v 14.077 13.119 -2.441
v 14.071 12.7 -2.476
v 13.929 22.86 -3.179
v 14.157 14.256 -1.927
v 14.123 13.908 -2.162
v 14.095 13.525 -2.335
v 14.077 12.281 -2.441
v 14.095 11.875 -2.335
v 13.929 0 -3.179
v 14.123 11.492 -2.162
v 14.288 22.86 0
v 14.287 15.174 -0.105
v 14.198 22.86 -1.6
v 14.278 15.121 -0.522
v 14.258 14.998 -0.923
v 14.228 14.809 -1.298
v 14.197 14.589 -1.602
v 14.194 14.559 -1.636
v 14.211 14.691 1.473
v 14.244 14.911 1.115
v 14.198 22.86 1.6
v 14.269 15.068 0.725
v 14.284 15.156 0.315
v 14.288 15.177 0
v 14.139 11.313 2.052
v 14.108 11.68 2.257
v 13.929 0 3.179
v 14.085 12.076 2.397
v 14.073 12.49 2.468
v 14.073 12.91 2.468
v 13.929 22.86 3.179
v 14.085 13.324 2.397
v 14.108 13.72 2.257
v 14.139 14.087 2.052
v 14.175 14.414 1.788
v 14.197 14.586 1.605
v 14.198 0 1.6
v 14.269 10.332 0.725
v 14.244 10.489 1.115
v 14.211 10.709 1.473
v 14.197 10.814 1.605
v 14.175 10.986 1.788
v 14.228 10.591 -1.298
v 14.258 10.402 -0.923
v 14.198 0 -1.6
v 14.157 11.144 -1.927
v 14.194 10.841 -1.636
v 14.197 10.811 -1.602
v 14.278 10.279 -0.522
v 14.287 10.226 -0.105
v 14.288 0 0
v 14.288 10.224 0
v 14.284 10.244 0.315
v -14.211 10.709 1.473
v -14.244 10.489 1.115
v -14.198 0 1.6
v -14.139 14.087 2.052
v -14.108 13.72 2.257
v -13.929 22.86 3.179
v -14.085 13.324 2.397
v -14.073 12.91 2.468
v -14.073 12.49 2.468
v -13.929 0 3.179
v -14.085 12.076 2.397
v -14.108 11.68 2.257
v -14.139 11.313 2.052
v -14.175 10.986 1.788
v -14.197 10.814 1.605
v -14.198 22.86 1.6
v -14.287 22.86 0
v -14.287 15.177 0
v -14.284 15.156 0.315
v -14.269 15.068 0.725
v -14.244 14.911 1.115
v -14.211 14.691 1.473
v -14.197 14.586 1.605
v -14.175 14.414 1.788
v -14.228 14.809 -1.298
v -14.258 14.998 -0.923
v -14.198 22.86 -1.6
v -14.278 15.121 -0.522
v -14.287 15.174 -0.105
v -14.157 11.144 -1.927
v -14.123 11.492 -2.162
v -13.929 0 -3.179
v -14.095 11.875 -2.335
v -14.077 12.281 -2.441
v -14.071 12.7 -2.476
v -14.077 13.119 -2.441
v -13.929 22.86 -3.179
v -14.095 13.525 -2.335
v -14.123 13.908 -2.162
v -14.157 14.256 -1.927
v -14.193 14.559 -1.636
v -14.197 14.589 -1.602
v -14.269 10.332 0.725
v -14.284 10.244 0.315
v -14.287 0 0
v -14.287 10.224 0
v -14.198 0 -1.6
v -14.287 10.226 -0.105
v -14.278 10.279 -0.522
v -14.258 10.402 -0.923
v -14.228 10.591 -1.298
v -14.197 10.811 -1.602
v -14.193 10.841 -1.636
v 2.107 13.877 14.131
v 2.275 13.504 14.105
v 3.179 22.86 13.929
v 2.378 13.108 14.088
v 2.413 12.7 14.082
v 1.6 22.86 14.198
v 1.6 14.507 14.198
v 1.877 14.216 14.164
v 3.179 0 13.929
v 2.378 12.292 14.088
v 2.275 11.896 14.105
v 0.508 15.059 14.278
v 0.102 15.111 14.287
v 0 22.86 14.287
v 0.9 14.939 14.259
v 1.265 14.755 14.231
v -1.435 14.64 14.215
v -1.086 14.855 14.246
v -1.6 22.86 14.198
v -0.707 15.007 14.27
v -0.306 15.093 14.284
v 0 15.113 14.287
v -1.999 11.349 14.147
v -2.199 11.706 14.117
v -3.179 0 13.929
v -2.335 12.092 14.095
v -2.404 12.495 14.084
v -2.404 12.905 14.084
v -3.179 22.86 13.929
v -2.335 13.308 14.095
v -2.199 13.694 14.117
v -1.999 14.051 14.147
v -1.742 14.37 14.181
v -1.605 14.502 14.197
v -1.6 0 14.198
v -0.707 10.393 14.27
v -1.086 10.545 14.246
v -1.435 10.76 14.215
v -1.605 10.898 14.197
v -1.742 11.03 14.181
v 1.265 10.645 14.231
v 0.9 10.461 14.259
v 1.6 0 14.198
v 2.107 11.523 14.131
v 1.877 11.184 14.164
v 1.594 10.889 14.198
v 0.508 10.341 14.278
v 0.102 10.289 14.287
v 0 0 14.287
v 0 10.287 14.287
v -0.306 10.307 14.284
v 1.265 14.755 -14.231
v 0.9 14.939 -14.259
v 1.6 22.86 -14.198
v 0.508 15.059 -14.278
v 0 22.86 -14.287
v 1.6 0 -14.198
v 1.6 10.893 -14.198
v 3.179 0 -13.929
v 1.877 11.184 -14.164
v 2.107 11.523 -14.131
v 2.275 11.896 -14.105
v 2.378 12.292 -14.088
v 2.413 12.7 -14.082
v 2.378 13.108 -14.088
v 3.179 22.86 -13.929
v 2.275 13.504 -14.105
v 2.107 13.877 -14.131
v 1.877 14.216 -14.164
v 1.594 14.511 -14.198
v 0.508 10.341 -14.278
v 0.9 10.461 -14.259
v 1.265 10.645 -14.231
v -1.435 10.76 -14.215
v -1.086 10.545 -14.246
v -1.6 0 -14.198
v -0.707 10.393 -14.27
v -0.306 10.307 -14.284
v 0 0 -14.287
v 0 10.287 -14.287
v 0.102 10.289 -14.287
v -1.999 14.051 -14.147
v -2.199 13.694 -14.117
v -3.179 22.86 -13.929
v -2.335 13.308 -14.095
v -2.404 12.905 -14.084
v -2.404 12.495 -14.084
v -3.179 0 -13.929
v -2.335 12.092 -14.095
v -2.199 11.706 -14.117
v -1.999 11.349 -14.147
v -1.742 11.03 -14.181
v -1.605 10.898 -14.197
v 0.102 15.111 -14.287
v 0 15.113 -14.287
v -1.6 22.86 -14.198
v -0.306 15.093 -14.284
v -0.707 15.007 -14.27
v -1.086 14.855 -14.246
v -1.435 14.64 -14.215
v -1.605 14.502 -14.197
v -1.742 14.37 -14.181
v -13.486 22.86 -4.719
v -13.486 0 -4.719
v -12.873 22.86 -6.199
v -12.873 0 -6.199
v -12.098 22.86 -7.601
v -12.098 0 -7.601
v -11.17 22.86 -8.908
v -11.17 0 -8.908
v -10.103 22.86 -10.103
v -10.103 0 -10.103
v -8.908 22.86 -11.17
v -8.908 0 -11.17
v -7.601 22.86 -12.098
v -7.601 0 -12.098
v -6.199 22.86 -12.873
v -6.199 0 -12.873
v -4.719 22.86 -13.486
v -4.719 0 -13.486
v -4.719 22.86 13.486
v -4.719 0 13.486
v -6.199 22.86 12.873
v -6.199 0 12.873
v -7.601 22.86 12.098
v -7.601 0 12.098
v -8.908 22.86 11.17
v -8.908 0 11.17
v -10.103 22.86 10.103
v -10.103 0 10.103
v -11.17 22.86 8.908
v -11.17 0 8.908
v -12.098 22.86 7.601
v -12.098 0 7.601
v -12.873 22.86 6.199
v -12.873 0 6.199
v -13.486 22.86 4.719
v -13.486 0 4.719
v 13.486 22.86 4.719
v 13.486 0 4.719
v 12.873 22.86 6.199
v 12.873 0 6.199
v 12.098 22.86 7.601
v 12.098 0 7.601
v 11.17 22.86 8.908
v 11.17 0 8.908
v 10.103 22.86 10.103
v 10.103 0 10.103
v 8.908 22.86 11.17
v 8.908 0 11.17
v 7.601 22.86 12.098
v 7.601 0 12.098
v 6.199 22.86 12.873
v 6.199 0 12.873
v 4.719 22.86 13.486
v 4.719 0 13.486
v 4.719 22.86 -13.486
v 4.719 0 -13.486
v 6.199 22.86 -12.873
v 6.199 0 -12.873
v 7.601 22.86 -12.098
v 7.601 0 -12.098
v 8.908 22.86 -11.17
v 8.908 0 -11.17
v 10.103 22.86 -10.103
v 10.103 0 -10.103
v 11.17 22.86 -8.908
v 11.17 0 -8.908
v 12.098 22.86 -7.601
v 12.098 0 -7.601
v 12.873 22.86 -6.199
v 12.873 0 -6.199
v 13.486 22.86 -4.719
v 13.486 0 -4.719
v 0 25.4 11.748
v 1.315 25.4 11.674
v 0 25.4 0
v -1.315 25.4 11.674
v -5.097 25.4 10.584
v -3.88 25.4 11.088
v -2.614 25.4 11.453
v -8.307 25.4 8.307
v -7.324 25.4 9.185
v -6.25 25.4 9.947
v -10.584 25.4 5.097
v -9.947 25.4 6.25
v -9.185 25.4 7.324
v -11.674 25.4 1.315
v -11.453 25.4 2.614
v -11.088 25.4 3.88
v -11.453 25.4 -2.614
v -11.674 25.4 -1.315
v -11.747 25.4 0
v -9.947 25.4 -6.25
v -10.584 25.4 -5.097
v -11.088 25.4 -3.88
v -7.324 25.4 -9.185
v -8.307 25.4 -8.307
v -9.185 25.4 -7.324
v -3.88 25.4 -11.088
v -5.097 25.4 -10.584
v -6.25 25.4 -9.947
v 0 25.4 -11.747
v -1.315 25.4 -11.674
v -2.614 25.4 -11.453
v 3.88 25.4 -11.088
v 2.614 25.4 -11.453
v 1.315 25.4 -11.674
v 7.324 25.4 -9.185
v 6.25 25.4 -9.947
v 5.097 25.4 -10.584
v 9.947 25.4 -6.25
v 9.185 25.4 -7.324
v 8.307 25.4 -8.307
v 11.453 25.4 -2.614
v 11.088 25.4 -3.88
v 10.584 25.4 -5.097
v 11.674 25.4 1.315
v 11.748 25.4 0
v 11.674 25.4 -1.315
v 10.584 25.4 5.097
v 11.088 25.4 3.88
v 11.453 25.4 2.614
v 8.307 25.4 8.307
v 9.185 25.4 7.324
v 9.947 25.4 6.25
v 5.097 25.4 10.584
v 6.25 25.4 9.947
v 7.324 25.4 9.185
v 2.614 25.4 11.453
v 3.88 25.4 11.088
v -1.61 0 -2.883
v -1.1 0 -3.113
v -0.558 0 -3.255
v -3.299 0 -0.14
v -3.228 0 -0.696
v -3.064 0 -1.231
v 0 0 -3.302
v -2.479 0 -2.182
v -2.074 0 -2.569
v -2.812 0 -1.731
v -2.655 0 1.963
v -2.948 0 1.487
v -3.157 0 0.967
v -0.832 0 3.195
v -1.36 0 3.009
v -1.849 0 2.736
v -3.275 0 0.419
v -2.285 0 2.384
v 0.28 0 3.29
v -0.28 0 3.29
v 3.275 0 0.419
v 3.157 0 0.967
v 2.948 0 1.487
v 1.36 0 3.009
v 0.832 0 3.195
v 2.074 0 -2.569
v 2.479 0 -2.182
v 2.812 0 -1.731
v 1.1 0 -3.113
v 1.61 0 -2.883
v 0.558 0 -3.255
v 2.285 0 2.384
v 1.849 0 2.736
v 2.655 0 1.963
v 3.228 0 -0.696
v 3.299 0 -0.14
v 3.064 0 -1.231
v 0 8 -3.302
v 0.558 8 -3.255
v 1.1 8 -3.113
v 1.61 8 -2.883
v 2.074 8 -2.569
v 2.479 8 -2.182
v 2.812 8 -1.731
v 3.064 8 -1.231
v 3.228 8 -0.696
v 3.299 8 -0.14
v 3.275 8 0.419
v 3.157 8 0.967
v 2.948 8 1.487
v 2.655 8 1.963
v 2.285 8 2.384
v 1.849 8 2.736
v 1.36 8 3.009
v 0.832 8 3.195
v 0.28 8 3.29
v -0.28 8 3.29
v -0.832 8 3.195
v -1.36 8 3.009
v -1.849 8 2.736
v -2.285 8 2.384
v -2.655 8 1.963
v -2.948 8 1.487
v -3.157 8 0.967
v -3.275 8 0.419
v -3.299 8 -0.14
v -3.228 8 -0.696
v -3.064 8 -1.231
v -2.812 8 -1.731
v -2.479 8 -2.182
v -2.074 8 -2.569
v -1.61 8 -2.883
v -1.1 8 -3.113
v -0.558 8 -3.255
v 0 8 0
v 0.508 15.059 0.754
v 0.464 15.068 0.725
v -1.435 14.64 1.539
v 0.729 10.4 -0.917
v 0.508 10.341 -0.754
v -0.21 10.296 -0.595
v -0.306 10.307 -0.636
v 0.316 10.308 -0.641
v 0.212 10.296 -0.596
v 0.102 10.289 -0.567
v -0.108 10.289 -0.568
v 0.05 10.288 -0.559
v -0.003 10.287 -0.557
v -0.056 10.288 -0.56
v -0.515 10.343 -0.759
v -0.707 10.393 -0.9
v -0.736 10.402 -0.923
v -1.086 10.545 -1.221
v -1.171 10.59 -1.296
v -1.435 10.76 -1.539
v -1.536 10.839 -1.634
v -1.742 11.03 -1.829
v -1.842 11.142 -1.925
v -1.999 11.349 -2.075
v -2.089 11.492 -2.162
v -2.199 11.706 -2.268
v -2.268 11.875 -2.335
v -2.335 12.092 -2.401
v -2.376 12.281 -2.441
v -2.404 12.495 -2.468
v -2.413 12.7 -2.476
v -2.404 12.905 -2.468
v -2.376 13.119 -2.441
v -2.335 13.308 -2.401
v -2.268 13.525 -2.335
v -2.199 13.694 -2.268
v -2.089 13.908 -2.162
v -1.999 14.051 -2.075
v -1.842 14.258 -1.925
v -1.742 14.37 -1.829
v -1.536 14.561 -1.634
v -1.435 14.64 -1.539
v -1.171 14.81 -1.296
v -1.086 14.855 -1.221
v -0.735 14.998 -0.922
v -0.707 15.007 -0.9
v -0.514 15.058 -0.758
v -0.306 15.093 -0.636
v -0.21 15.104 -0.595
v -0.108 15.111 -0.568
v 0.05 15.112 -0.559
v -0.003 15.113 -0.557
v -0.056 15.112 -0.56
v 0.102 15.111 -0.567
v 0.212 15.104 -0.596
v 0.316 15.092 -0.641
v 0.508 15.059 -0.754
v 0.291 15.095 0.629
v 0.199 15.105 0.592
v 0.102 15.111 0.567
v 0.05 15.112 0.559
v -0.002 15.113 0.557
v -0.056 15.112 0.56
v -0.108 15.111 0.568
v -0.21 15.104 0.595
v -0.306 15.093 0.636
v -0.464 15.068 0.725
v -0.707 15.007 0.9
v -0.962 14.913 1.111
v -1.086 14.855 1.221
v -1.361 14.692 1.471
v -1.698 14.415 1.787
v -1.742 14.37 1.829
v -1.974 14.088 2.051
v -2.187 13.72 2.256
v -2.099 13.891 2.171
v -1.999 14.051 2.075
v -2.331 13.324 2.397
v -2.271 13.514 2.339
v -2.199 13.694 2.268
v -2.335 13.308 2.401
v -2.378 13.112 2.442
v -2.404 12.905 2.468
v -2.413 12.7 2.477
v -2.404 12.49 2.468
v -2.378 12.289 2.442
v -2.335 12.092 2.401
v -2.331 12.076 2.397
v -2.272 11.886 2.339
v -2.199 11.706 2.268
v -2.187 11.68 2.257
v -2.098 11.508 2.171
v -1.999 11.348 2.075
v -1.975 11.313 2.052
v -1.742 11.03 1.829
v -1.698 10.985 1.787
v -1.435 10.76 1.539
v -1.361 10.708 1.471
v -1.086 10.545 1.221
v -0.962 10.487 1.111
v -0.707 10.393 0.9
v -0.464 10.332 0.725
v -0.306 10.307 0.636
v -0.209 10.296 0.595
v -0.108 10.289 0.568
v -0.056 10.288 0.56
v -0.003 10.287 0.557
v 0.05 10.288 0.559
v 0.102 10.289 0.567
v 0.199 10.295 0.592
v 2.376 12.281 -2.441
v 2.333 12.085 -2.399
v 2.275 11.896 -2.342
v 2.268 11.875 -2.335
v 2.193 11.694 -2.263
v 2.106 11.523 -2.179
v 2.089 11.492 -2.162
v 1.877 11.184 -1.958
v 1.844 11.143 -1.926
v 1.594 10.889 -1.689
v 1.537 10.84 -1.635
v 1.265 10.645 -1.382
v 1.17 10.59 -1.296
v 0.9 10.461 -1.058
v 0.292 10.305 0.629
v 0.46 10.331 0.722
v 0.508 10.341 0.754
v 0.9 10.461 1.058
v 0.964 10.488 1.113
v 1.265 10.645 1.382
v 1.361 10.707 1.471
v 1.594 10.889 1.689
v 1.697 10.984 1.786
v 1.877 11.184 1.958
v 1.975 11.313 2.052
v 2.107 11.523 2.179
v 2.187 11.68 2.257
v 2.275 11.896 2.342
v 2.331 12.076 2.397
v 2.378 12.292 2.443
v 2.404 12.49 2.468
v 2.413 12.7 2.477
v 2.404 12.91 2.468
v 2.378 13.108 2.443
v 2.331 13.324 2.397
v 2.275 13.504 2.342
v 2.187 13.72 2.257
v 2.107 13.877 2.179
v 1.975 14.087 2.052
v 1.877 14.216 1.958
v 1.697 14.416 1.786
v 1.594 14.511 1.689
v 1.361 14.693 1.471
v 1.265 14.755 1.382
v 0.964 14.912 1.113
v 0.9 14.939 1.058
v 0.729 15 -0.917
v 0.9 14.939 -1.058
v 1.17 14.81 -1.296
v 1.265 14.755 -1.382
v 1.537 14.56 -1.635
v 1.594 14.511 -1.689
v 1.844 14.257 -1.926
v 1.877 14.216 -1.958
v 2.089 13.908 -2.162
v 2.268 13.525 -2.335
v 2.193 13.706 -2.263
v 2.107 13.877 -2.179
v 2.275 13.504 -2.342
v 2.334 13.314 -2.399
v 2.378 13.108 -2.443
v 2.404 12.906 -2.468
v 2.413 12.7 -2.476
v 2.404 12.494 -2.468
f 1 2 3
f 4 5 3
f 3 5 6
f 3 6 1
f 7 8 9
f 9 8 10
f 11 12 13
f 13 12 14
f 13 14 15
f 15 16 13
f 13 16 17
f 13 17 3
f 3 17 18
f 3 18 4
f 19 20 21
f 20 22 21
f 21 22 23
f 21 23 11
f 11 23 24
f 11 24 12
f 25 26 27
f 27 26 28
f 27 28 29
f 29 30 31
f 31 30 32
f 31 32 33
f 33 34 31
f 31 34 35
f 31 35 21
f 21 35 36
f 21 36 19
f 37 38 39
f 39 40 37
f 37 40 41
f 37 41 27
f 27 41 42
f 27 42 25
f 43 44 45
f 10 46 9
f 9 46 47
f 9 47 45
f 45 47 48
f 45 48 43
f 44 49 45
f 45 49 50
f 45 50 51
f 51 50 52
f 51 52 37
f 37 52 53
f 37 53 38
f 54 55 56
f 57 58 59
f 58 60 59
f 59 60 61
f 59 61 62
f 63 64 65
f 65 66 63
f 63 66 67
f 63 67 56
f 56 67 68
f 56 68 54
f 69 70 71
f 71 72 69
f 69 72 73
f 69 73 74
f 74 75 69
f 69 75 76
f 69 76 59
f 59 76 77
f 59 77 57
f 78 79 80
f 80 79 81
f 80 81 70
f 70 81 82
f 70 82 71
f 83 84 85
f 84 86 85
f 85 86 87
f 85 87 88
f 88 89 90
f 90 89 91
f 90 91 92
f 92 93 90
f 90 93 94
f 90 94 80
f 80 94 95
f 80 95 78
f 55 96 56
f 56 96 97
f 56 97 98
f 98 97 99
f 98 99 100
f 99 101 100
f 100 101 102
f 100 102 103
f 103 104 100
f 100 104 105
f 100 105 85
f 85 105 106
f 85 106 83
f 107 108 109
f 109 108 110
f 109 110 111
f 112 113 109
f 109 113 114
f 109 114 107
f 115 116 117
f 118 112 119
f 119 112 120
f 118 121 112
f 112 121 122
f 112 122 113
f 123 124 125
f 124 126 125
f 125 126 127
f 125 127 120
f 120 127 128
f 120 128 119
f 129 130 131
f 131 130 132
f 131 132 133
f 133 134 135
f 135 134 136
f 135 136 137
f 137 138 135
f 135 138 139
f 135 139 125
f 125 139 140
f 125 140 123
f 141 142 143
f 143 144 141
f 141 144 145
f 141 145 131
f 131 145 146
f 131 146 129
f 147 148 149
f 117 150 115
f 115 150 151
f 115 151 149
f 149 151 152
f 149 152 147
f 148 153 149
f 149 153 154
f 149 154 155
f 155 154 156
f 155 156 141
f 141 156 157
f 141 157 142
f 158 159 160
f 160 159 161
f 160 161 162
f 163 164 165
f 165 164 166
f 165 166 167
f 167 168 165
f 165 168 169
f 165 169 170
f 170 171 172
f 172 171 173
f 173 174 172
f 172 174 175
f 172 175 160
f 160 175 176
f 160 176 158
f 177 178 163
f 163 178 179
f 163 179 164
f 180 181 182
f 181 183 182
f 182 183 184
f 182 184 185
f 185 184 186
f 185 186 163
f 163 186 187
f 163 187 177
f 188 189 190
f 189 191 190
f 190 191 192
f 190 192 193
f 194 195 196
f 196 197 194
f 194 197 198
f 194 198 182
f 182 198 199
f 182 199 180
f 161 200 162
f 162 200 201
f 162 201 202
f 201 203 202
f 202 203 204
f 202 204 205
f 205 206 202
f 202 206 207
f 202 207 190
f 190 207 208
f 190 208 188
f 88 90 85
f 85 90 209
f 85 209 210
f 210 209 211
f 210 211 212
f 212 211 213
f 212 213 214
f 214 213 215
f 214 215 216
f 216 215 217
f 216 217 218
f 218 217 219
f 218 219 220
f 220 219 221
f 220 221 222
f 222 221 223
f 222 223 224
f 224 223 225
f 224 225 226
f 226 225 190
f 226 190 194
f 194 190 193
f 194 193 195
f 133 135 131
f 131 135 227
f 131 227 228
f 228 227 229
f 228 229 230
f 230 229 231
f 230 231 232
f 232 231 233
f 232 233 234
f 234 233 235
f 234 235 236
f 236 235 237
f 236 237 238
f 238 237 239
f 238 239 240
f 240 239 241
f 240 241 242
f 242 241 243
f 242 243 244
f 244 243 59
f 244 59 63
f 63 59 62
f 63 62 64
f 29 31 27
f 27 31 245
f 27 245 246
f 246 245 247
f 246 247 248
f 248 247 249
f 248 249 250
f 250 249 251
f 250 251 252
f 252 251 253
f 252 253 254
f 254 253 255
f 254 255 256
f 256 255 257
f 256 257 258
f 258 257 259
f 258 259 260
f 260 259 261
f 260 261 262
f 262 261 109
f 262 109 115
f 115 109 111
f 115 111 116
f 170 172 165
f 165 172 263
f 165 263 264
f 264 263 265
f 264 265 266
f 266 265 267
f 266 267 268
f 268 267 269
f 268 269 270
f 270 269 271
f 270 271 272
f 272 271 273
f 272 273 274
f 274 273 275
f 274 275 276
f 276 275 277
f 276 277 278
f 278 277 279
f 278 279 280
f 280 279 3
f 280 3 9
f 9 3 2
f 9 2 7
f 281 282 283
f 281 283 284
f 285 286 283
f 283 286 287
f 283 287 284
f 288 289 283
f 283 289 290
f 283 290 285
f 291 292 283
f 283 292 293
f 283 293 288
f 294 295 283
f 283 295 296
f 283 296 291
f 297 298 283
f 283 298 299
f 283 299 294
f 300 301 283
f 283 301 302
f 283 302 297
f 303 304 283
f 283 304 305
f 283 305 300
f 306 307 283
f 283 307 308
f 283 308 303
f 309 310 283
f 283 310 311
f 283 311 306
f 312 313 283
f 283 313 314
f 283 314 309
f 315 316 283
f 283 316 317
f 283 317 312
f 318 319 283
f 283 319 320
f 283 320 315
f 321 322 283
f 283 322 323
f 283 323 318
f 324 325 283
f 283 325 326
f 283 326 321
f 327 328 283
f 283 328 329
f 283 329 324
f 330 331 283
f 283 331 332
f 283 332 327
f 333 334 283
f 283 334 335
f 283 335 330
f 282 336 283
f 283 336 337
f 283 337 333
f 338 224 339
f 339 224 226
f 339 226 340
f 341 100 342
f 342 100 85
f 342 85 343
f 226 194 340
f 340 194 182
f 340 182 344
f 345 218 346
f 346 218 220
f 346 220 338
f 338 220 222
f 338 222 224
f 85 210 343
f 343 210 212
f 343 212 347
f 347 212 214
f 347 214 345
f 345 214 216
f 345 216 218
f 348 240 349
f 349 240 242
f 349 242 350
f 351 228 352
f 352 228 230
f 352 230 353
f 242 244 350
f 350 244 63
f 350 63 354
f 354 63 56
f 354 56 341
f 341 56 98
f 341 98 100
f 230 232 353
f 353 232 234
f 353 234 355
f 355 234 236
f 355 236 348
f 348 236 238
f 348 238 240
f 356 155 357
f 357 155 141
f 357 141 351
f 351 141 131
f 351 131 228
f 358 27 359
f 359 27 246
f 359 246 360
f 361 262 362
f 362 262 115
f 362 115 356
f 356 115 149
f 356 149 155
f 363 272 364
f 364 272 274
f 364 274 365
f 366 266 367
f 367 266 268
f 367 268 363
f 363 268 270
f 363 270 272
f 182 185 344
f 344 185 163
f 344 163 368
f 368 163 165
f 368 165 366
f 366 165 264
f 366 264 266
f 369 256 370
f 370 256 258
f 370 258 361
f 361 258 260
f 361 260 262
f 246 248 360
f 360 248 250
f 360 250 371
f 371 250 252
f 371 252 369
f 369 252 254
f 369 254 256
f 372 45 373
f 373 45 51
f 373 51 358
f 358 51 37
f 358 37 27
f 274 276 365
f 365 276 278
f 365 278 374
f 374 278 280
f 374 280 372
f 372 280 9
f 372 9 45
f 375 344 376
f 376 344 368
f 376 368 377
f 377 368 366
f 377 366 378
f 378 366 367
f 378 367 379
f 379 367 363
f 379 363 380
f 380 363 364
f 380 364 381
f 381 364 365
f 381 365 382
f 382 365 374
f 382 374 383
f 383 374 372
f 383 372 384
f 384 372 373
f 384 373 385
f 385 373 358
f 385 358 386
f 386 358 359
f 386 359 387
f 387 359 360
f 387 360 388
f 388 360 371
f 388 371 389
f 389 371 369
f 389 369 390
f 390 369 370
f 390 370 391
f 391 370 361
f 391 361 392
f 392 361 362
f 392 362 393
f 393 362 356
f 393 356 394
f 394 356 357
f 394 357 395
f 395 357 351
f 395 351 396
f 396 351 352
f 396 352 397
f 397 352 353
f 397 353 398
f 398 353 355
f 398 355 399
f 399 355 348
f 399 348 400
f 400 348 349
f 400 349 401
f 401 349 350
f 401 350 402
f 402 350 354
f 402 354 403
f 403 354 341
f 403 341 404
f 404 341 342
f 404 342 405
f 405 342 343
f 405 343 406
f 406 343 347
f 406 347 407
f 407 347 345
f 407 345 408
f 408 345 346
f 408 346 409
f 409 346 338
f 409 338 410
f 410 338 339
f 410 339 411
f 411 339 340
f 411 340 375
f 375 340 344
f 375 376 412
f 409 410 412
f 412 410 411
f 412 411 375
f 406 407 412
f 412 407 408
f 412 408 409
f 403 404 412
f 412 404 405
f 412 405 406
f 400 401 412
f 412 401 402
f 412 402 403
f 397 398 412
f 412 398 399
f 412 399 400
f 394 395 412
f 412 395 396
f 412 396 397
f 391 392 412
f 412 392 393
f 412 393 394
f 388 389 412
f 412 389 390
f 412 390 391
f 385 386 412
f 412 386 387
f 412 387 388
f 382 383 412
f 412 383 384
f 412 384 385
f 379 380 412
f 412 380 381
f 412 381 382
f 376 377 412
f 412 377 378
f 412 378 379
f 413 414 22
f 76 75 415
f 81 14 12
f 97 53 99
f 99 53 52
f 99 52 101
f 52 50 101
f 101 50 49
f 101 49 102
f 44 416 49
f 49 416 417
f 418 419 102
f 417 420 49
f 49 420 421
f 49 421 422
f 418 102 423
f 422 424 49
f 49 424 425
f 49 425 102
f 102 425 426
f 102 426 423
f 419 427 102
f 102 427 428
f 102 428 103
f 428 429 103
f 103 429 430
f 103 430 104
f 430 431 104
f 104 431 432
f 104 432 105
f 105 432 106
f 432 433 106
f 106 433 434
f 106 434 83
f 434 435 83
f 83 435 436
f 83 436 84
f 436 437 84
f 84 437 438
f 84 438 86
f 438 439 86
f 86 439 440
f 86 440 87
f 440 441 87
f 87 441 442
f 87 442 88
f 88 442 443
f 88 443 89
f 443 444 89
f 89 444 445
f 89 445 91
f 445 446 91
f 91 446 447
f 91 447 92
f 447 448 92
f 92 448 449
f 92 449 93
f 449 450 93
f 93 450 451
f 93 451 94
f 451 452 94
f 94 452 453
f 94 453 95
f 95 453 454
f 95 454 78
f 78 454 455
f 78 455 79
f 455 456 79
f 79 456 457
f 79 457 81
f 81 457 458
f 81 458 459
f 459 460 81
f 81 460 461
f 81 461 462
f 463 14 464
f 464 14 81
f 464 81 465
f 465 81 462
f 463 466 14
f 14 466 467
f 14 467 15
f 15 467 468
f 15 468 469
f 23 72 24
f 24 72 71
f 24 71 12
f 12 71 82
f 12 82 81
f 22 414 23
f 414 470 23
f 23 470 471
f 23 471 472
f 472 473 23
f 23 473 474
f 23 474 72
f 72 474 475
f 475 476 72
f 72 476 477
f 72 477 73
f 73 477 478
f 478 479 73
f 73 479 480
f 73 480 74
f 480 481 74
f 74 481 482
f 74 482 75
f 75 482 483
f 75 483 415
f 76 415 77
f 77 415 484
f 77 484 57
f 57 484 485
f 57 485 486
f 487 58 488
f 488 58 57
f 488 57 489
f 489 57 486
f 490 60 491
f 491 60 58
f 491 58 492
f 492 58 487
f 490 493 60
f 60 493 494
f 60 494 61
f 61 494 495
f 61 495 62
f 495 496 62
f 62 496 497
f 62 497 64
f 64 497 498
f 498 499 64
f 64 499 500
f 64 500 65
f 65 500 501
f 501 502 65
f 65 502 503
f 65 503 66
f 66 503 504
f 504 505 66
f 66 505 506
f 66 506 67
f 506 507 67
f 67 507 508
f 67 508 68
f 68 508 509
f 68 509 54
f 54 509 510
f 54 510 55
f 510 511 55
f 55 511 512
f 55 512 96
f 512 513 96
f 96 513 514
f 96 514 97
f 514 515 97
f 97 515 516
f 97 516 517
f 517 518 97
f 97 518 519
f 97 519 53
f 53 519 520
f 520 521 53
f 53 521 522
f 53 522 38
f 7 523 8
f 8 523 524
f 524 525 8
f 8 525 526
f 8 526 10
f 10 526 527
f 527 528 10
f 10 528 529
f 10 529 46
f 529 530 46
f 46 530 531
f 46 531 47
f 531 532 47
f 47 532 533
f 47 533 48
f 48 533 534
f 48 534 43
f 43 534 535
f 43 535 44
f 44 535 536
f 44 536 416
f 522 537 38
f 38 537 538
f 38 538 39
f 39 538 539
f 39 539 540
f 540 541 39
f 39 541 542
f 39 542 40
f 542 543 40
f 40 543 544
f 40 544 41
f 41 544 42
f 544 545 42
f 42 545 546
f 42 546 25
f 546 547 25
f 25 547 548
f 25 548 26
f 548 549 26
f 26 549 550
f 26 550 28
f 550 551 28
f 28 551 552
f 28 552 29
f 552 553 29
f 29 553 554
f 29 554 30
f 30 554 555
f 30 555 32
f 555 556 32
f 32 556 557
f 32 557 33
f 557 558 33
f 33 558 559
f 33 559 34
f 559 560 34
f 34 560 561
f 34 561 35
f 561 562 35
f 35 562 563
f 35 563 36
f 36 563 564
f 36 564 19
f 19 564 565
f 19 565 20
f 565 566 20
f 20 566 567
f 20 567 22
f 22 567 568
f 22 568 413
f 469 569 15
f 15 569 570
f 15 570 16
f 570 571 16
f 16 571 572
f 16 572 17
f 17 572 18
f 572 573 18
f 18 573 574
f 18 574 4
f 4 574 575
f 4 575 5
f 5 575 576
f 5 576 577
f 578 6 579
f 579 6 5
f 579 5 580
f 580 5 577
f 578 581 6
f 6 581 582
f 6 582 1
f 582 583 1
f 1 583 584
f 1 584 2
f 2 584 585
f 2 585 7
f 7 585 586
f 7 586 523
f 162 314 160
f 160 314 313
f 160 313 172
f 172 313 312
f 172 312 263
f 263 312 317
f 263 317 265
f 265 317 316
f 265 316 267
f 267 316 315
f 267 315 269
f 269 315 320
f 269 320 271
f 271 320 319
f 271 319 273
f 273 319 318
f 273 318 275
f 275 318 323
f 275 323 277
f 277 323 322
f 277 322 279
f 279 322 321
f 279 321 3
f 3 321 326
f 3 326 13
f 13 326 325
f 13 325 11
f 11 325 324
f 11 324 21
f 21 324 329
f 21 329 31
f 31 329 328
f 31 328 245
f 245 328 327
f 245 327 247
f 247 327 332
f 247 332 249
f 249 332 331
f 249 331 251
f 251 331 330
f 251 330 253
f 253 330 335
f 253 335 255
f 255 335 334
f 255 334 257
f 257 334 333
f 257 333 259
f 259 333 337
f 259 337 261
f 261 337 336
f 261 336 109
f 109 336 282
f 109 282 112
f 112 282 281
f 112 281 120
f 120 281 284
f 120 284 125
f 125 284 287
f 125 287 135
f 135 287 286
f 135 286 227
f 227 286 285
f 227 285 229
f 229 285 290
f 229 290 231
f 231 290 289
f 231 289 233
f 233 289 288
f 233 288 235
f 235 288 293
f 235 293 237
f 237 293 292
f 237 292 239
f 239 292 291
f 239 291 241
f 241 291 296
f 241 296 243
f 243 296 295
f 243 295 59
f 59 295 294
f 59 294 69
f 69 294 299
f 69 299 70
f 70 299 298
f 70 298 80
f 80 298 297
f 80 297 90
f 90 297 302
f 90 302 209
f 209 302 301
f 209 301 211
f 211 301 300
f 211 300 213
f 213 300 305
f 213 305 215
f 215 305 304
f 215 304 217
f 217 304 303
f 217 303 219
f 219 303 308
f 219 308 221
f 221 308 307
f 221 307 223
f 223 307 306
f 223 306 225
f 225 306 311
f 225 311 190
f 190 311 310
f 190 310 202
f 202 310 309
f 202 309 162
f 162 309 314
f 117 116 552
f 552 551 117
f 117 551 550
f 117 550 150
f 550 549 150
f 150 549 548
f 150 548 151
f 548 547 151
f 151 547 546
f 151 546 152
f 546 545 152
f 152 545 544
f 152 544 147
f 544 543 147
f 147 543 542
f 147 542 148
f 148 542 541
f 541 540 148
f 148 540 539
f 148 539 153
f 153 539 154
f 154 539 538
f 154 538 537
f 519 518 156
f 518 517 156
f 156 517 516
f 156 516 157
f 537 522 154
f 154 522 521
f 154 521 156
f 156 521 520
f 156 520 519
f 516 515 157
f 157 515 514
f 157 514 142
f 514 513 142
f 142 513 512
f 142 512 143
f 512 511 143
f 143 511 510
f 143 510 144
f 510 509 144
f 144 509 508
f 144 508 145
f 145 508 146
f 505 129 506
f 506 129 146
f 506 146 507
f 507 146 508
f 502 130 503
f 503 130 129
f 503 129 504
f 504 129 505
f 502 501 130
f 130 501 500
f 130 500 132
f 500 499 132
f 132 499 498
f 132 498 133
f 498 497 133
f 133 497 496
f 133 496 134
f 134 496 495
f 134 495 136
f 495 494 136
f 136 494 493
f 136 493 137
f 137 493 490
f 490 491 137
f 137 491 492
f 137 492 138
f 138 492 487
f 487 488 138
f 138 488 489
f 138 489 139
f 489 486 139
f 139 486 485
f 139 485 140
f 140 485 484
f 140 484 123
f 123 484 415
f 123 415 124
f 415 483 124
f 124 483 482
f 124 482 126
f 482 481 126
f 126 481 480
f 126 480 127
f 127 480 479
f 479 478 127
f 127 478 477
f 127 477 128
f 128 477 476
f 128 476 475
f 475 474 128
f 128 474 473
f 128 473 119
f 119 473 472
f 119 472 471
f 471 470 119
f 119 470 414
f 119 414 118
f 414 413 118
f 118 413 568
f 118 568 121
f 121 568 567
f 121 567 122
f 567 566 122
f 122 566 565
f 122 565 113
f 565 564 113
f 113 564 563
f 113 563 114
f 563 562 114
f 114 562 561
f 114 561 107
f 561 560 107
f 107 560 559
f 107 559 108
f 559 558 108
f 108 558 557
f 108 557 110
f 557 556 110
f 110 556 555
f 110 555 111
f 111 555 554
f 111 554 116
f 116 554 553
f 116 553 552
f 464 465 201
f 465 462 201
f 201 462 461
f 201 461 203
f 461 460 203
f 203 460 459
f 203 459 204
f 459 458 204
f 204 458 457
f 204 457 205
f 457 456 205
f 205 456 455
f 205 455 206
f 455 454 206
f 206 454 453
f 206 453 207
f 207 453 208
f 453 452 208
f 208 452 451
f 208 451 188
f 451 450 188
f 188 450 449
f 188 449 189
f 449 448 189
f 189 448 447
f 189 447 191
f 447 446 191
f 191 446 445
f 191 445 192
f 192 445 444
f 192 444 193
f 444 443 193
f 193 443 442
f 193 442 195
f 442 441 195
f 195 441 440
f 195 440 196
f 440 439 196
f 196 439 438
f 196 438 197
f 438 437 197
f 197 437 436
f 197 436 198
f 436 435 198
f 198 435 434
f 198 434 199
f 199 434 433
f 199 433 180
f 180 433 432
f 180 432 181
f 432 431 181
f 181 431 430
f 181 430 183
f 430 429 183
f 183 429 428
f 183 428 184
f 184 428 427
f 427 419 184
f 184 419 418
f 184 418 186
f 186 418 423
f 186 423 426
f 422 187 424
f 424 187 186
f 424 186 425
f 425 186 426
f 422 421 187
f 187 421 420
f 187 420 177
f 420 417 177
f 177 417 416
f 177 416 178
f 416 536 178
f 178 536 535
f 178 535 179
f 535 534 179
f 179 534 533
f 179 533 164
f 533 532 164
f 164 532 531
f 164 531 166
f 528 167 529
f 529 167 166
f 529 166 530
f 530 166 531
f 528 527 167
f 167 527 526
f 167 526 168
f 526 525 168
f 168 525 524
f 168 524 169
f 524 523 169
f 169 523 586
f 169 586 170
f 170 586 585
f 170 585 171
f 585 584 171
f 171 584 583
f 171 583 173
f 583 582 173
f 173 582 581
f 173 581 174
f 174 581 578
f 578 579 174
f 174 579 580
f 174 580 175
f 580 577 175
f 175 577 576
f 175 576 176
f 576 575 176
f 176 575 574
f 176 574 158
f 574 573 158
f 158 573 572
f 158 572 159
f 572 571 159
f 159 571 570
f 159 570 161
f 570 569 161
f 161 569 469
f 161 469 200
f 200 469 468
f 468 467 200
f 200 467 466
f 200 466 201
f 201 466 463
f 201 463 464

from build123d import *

# Parameters (mm, degrees)
SKETCH1_R               = 14.2875
BOSS_EXTRUDE1_DEPTH     = 25.4
SKETCH2_R               = 3.302
CUT_EXTRUDE1_DEPTH      = 8
CUT_EXTRUDE2_DEPTH      = 33.456514177
CUT_EXTRUDE2_DEPTH_BACK = 33.456514177
SKETCH3_R               = 2.4765
CHAMFER1_SIZE           = 2.54
CUT_EXTRUDE3_DEPTH      = 33.456514265
CUT_EXTRUDE3_DEPTH_BACK = 33.456514265
SKETCH4_R               = 2.413


with BuildPart() as part:
    # Sketch1 → Boss-Extrude1 (new body)
    with BuildSketch(Plane(origin=(0, 0, 0), x_dir=(1, 0, 0), z_dir=(0, 1, 0))):
        with Locations(Location((0, 0, 0), (0, 0, 270))):
            Circle(SKETCH1_R)
    extrude(amount=BOSS_EXTRUDE1_DEPTH)

    # Sketch2 → Cut-Extrude1 (cut)
    with BuildSketch(Plane(origin=(0, 0, 0), x_dir=(-1, 0, 0), z_dir=(0, -1, 0))):
        with Locations(Location((0, 0, 0), (0, 0, 90))):
            Circle(SKETCH2_R)
    extrude(amount=-CUT_EXTRUDE1_DEPTH, mode=Mode.SUBTRACT)

    # Sketch3 → Cut-Extrude2 (cut, two sides: drawn at the far end of the back side and taken through both)
    with BuildSketch(Plane(origin=(0, 0, 0), x_dir=(0, 0, -1), z_dir=(1, 0, 0)).offset(-CUT_EXTRUDE2_DEPTH_BACK)):
        with Locations((0, 12.7)):
            Circle(SKETCH3_R)
    extrude(amount=CUT_EXTRUDE2_DEPTH + CUT_EXTRUDE2_DEPTH_BACK, mode=Mode.SUBTRACT)

    # Chamfer1
    chamfer1_edges = [part.edges().sort_by_distance(p)[0] for p in [
        (0, 25.4, -14.2875),
    ]]
    chamfer(chamfer1_edges, length=CHAMFER1_SIZE)

    # Sketch4 → Cut-Extrude3 (cut, two sides: drawn at the far end of the back side and taken through both)
    with BuildSketch(Plane.XY.offset(-CUT_EXTRUDE3_DEPTH_BACK)):
        with Locations((0, 12.7)):
            Circle(SKETCH4_R)
    extrude(amount=CUT_EXTRUDE3_DEPTH + CUT_EXTRUDE3_DEPTH_BACK, mode=Mode.SUBTRACT)


solid = part.part
